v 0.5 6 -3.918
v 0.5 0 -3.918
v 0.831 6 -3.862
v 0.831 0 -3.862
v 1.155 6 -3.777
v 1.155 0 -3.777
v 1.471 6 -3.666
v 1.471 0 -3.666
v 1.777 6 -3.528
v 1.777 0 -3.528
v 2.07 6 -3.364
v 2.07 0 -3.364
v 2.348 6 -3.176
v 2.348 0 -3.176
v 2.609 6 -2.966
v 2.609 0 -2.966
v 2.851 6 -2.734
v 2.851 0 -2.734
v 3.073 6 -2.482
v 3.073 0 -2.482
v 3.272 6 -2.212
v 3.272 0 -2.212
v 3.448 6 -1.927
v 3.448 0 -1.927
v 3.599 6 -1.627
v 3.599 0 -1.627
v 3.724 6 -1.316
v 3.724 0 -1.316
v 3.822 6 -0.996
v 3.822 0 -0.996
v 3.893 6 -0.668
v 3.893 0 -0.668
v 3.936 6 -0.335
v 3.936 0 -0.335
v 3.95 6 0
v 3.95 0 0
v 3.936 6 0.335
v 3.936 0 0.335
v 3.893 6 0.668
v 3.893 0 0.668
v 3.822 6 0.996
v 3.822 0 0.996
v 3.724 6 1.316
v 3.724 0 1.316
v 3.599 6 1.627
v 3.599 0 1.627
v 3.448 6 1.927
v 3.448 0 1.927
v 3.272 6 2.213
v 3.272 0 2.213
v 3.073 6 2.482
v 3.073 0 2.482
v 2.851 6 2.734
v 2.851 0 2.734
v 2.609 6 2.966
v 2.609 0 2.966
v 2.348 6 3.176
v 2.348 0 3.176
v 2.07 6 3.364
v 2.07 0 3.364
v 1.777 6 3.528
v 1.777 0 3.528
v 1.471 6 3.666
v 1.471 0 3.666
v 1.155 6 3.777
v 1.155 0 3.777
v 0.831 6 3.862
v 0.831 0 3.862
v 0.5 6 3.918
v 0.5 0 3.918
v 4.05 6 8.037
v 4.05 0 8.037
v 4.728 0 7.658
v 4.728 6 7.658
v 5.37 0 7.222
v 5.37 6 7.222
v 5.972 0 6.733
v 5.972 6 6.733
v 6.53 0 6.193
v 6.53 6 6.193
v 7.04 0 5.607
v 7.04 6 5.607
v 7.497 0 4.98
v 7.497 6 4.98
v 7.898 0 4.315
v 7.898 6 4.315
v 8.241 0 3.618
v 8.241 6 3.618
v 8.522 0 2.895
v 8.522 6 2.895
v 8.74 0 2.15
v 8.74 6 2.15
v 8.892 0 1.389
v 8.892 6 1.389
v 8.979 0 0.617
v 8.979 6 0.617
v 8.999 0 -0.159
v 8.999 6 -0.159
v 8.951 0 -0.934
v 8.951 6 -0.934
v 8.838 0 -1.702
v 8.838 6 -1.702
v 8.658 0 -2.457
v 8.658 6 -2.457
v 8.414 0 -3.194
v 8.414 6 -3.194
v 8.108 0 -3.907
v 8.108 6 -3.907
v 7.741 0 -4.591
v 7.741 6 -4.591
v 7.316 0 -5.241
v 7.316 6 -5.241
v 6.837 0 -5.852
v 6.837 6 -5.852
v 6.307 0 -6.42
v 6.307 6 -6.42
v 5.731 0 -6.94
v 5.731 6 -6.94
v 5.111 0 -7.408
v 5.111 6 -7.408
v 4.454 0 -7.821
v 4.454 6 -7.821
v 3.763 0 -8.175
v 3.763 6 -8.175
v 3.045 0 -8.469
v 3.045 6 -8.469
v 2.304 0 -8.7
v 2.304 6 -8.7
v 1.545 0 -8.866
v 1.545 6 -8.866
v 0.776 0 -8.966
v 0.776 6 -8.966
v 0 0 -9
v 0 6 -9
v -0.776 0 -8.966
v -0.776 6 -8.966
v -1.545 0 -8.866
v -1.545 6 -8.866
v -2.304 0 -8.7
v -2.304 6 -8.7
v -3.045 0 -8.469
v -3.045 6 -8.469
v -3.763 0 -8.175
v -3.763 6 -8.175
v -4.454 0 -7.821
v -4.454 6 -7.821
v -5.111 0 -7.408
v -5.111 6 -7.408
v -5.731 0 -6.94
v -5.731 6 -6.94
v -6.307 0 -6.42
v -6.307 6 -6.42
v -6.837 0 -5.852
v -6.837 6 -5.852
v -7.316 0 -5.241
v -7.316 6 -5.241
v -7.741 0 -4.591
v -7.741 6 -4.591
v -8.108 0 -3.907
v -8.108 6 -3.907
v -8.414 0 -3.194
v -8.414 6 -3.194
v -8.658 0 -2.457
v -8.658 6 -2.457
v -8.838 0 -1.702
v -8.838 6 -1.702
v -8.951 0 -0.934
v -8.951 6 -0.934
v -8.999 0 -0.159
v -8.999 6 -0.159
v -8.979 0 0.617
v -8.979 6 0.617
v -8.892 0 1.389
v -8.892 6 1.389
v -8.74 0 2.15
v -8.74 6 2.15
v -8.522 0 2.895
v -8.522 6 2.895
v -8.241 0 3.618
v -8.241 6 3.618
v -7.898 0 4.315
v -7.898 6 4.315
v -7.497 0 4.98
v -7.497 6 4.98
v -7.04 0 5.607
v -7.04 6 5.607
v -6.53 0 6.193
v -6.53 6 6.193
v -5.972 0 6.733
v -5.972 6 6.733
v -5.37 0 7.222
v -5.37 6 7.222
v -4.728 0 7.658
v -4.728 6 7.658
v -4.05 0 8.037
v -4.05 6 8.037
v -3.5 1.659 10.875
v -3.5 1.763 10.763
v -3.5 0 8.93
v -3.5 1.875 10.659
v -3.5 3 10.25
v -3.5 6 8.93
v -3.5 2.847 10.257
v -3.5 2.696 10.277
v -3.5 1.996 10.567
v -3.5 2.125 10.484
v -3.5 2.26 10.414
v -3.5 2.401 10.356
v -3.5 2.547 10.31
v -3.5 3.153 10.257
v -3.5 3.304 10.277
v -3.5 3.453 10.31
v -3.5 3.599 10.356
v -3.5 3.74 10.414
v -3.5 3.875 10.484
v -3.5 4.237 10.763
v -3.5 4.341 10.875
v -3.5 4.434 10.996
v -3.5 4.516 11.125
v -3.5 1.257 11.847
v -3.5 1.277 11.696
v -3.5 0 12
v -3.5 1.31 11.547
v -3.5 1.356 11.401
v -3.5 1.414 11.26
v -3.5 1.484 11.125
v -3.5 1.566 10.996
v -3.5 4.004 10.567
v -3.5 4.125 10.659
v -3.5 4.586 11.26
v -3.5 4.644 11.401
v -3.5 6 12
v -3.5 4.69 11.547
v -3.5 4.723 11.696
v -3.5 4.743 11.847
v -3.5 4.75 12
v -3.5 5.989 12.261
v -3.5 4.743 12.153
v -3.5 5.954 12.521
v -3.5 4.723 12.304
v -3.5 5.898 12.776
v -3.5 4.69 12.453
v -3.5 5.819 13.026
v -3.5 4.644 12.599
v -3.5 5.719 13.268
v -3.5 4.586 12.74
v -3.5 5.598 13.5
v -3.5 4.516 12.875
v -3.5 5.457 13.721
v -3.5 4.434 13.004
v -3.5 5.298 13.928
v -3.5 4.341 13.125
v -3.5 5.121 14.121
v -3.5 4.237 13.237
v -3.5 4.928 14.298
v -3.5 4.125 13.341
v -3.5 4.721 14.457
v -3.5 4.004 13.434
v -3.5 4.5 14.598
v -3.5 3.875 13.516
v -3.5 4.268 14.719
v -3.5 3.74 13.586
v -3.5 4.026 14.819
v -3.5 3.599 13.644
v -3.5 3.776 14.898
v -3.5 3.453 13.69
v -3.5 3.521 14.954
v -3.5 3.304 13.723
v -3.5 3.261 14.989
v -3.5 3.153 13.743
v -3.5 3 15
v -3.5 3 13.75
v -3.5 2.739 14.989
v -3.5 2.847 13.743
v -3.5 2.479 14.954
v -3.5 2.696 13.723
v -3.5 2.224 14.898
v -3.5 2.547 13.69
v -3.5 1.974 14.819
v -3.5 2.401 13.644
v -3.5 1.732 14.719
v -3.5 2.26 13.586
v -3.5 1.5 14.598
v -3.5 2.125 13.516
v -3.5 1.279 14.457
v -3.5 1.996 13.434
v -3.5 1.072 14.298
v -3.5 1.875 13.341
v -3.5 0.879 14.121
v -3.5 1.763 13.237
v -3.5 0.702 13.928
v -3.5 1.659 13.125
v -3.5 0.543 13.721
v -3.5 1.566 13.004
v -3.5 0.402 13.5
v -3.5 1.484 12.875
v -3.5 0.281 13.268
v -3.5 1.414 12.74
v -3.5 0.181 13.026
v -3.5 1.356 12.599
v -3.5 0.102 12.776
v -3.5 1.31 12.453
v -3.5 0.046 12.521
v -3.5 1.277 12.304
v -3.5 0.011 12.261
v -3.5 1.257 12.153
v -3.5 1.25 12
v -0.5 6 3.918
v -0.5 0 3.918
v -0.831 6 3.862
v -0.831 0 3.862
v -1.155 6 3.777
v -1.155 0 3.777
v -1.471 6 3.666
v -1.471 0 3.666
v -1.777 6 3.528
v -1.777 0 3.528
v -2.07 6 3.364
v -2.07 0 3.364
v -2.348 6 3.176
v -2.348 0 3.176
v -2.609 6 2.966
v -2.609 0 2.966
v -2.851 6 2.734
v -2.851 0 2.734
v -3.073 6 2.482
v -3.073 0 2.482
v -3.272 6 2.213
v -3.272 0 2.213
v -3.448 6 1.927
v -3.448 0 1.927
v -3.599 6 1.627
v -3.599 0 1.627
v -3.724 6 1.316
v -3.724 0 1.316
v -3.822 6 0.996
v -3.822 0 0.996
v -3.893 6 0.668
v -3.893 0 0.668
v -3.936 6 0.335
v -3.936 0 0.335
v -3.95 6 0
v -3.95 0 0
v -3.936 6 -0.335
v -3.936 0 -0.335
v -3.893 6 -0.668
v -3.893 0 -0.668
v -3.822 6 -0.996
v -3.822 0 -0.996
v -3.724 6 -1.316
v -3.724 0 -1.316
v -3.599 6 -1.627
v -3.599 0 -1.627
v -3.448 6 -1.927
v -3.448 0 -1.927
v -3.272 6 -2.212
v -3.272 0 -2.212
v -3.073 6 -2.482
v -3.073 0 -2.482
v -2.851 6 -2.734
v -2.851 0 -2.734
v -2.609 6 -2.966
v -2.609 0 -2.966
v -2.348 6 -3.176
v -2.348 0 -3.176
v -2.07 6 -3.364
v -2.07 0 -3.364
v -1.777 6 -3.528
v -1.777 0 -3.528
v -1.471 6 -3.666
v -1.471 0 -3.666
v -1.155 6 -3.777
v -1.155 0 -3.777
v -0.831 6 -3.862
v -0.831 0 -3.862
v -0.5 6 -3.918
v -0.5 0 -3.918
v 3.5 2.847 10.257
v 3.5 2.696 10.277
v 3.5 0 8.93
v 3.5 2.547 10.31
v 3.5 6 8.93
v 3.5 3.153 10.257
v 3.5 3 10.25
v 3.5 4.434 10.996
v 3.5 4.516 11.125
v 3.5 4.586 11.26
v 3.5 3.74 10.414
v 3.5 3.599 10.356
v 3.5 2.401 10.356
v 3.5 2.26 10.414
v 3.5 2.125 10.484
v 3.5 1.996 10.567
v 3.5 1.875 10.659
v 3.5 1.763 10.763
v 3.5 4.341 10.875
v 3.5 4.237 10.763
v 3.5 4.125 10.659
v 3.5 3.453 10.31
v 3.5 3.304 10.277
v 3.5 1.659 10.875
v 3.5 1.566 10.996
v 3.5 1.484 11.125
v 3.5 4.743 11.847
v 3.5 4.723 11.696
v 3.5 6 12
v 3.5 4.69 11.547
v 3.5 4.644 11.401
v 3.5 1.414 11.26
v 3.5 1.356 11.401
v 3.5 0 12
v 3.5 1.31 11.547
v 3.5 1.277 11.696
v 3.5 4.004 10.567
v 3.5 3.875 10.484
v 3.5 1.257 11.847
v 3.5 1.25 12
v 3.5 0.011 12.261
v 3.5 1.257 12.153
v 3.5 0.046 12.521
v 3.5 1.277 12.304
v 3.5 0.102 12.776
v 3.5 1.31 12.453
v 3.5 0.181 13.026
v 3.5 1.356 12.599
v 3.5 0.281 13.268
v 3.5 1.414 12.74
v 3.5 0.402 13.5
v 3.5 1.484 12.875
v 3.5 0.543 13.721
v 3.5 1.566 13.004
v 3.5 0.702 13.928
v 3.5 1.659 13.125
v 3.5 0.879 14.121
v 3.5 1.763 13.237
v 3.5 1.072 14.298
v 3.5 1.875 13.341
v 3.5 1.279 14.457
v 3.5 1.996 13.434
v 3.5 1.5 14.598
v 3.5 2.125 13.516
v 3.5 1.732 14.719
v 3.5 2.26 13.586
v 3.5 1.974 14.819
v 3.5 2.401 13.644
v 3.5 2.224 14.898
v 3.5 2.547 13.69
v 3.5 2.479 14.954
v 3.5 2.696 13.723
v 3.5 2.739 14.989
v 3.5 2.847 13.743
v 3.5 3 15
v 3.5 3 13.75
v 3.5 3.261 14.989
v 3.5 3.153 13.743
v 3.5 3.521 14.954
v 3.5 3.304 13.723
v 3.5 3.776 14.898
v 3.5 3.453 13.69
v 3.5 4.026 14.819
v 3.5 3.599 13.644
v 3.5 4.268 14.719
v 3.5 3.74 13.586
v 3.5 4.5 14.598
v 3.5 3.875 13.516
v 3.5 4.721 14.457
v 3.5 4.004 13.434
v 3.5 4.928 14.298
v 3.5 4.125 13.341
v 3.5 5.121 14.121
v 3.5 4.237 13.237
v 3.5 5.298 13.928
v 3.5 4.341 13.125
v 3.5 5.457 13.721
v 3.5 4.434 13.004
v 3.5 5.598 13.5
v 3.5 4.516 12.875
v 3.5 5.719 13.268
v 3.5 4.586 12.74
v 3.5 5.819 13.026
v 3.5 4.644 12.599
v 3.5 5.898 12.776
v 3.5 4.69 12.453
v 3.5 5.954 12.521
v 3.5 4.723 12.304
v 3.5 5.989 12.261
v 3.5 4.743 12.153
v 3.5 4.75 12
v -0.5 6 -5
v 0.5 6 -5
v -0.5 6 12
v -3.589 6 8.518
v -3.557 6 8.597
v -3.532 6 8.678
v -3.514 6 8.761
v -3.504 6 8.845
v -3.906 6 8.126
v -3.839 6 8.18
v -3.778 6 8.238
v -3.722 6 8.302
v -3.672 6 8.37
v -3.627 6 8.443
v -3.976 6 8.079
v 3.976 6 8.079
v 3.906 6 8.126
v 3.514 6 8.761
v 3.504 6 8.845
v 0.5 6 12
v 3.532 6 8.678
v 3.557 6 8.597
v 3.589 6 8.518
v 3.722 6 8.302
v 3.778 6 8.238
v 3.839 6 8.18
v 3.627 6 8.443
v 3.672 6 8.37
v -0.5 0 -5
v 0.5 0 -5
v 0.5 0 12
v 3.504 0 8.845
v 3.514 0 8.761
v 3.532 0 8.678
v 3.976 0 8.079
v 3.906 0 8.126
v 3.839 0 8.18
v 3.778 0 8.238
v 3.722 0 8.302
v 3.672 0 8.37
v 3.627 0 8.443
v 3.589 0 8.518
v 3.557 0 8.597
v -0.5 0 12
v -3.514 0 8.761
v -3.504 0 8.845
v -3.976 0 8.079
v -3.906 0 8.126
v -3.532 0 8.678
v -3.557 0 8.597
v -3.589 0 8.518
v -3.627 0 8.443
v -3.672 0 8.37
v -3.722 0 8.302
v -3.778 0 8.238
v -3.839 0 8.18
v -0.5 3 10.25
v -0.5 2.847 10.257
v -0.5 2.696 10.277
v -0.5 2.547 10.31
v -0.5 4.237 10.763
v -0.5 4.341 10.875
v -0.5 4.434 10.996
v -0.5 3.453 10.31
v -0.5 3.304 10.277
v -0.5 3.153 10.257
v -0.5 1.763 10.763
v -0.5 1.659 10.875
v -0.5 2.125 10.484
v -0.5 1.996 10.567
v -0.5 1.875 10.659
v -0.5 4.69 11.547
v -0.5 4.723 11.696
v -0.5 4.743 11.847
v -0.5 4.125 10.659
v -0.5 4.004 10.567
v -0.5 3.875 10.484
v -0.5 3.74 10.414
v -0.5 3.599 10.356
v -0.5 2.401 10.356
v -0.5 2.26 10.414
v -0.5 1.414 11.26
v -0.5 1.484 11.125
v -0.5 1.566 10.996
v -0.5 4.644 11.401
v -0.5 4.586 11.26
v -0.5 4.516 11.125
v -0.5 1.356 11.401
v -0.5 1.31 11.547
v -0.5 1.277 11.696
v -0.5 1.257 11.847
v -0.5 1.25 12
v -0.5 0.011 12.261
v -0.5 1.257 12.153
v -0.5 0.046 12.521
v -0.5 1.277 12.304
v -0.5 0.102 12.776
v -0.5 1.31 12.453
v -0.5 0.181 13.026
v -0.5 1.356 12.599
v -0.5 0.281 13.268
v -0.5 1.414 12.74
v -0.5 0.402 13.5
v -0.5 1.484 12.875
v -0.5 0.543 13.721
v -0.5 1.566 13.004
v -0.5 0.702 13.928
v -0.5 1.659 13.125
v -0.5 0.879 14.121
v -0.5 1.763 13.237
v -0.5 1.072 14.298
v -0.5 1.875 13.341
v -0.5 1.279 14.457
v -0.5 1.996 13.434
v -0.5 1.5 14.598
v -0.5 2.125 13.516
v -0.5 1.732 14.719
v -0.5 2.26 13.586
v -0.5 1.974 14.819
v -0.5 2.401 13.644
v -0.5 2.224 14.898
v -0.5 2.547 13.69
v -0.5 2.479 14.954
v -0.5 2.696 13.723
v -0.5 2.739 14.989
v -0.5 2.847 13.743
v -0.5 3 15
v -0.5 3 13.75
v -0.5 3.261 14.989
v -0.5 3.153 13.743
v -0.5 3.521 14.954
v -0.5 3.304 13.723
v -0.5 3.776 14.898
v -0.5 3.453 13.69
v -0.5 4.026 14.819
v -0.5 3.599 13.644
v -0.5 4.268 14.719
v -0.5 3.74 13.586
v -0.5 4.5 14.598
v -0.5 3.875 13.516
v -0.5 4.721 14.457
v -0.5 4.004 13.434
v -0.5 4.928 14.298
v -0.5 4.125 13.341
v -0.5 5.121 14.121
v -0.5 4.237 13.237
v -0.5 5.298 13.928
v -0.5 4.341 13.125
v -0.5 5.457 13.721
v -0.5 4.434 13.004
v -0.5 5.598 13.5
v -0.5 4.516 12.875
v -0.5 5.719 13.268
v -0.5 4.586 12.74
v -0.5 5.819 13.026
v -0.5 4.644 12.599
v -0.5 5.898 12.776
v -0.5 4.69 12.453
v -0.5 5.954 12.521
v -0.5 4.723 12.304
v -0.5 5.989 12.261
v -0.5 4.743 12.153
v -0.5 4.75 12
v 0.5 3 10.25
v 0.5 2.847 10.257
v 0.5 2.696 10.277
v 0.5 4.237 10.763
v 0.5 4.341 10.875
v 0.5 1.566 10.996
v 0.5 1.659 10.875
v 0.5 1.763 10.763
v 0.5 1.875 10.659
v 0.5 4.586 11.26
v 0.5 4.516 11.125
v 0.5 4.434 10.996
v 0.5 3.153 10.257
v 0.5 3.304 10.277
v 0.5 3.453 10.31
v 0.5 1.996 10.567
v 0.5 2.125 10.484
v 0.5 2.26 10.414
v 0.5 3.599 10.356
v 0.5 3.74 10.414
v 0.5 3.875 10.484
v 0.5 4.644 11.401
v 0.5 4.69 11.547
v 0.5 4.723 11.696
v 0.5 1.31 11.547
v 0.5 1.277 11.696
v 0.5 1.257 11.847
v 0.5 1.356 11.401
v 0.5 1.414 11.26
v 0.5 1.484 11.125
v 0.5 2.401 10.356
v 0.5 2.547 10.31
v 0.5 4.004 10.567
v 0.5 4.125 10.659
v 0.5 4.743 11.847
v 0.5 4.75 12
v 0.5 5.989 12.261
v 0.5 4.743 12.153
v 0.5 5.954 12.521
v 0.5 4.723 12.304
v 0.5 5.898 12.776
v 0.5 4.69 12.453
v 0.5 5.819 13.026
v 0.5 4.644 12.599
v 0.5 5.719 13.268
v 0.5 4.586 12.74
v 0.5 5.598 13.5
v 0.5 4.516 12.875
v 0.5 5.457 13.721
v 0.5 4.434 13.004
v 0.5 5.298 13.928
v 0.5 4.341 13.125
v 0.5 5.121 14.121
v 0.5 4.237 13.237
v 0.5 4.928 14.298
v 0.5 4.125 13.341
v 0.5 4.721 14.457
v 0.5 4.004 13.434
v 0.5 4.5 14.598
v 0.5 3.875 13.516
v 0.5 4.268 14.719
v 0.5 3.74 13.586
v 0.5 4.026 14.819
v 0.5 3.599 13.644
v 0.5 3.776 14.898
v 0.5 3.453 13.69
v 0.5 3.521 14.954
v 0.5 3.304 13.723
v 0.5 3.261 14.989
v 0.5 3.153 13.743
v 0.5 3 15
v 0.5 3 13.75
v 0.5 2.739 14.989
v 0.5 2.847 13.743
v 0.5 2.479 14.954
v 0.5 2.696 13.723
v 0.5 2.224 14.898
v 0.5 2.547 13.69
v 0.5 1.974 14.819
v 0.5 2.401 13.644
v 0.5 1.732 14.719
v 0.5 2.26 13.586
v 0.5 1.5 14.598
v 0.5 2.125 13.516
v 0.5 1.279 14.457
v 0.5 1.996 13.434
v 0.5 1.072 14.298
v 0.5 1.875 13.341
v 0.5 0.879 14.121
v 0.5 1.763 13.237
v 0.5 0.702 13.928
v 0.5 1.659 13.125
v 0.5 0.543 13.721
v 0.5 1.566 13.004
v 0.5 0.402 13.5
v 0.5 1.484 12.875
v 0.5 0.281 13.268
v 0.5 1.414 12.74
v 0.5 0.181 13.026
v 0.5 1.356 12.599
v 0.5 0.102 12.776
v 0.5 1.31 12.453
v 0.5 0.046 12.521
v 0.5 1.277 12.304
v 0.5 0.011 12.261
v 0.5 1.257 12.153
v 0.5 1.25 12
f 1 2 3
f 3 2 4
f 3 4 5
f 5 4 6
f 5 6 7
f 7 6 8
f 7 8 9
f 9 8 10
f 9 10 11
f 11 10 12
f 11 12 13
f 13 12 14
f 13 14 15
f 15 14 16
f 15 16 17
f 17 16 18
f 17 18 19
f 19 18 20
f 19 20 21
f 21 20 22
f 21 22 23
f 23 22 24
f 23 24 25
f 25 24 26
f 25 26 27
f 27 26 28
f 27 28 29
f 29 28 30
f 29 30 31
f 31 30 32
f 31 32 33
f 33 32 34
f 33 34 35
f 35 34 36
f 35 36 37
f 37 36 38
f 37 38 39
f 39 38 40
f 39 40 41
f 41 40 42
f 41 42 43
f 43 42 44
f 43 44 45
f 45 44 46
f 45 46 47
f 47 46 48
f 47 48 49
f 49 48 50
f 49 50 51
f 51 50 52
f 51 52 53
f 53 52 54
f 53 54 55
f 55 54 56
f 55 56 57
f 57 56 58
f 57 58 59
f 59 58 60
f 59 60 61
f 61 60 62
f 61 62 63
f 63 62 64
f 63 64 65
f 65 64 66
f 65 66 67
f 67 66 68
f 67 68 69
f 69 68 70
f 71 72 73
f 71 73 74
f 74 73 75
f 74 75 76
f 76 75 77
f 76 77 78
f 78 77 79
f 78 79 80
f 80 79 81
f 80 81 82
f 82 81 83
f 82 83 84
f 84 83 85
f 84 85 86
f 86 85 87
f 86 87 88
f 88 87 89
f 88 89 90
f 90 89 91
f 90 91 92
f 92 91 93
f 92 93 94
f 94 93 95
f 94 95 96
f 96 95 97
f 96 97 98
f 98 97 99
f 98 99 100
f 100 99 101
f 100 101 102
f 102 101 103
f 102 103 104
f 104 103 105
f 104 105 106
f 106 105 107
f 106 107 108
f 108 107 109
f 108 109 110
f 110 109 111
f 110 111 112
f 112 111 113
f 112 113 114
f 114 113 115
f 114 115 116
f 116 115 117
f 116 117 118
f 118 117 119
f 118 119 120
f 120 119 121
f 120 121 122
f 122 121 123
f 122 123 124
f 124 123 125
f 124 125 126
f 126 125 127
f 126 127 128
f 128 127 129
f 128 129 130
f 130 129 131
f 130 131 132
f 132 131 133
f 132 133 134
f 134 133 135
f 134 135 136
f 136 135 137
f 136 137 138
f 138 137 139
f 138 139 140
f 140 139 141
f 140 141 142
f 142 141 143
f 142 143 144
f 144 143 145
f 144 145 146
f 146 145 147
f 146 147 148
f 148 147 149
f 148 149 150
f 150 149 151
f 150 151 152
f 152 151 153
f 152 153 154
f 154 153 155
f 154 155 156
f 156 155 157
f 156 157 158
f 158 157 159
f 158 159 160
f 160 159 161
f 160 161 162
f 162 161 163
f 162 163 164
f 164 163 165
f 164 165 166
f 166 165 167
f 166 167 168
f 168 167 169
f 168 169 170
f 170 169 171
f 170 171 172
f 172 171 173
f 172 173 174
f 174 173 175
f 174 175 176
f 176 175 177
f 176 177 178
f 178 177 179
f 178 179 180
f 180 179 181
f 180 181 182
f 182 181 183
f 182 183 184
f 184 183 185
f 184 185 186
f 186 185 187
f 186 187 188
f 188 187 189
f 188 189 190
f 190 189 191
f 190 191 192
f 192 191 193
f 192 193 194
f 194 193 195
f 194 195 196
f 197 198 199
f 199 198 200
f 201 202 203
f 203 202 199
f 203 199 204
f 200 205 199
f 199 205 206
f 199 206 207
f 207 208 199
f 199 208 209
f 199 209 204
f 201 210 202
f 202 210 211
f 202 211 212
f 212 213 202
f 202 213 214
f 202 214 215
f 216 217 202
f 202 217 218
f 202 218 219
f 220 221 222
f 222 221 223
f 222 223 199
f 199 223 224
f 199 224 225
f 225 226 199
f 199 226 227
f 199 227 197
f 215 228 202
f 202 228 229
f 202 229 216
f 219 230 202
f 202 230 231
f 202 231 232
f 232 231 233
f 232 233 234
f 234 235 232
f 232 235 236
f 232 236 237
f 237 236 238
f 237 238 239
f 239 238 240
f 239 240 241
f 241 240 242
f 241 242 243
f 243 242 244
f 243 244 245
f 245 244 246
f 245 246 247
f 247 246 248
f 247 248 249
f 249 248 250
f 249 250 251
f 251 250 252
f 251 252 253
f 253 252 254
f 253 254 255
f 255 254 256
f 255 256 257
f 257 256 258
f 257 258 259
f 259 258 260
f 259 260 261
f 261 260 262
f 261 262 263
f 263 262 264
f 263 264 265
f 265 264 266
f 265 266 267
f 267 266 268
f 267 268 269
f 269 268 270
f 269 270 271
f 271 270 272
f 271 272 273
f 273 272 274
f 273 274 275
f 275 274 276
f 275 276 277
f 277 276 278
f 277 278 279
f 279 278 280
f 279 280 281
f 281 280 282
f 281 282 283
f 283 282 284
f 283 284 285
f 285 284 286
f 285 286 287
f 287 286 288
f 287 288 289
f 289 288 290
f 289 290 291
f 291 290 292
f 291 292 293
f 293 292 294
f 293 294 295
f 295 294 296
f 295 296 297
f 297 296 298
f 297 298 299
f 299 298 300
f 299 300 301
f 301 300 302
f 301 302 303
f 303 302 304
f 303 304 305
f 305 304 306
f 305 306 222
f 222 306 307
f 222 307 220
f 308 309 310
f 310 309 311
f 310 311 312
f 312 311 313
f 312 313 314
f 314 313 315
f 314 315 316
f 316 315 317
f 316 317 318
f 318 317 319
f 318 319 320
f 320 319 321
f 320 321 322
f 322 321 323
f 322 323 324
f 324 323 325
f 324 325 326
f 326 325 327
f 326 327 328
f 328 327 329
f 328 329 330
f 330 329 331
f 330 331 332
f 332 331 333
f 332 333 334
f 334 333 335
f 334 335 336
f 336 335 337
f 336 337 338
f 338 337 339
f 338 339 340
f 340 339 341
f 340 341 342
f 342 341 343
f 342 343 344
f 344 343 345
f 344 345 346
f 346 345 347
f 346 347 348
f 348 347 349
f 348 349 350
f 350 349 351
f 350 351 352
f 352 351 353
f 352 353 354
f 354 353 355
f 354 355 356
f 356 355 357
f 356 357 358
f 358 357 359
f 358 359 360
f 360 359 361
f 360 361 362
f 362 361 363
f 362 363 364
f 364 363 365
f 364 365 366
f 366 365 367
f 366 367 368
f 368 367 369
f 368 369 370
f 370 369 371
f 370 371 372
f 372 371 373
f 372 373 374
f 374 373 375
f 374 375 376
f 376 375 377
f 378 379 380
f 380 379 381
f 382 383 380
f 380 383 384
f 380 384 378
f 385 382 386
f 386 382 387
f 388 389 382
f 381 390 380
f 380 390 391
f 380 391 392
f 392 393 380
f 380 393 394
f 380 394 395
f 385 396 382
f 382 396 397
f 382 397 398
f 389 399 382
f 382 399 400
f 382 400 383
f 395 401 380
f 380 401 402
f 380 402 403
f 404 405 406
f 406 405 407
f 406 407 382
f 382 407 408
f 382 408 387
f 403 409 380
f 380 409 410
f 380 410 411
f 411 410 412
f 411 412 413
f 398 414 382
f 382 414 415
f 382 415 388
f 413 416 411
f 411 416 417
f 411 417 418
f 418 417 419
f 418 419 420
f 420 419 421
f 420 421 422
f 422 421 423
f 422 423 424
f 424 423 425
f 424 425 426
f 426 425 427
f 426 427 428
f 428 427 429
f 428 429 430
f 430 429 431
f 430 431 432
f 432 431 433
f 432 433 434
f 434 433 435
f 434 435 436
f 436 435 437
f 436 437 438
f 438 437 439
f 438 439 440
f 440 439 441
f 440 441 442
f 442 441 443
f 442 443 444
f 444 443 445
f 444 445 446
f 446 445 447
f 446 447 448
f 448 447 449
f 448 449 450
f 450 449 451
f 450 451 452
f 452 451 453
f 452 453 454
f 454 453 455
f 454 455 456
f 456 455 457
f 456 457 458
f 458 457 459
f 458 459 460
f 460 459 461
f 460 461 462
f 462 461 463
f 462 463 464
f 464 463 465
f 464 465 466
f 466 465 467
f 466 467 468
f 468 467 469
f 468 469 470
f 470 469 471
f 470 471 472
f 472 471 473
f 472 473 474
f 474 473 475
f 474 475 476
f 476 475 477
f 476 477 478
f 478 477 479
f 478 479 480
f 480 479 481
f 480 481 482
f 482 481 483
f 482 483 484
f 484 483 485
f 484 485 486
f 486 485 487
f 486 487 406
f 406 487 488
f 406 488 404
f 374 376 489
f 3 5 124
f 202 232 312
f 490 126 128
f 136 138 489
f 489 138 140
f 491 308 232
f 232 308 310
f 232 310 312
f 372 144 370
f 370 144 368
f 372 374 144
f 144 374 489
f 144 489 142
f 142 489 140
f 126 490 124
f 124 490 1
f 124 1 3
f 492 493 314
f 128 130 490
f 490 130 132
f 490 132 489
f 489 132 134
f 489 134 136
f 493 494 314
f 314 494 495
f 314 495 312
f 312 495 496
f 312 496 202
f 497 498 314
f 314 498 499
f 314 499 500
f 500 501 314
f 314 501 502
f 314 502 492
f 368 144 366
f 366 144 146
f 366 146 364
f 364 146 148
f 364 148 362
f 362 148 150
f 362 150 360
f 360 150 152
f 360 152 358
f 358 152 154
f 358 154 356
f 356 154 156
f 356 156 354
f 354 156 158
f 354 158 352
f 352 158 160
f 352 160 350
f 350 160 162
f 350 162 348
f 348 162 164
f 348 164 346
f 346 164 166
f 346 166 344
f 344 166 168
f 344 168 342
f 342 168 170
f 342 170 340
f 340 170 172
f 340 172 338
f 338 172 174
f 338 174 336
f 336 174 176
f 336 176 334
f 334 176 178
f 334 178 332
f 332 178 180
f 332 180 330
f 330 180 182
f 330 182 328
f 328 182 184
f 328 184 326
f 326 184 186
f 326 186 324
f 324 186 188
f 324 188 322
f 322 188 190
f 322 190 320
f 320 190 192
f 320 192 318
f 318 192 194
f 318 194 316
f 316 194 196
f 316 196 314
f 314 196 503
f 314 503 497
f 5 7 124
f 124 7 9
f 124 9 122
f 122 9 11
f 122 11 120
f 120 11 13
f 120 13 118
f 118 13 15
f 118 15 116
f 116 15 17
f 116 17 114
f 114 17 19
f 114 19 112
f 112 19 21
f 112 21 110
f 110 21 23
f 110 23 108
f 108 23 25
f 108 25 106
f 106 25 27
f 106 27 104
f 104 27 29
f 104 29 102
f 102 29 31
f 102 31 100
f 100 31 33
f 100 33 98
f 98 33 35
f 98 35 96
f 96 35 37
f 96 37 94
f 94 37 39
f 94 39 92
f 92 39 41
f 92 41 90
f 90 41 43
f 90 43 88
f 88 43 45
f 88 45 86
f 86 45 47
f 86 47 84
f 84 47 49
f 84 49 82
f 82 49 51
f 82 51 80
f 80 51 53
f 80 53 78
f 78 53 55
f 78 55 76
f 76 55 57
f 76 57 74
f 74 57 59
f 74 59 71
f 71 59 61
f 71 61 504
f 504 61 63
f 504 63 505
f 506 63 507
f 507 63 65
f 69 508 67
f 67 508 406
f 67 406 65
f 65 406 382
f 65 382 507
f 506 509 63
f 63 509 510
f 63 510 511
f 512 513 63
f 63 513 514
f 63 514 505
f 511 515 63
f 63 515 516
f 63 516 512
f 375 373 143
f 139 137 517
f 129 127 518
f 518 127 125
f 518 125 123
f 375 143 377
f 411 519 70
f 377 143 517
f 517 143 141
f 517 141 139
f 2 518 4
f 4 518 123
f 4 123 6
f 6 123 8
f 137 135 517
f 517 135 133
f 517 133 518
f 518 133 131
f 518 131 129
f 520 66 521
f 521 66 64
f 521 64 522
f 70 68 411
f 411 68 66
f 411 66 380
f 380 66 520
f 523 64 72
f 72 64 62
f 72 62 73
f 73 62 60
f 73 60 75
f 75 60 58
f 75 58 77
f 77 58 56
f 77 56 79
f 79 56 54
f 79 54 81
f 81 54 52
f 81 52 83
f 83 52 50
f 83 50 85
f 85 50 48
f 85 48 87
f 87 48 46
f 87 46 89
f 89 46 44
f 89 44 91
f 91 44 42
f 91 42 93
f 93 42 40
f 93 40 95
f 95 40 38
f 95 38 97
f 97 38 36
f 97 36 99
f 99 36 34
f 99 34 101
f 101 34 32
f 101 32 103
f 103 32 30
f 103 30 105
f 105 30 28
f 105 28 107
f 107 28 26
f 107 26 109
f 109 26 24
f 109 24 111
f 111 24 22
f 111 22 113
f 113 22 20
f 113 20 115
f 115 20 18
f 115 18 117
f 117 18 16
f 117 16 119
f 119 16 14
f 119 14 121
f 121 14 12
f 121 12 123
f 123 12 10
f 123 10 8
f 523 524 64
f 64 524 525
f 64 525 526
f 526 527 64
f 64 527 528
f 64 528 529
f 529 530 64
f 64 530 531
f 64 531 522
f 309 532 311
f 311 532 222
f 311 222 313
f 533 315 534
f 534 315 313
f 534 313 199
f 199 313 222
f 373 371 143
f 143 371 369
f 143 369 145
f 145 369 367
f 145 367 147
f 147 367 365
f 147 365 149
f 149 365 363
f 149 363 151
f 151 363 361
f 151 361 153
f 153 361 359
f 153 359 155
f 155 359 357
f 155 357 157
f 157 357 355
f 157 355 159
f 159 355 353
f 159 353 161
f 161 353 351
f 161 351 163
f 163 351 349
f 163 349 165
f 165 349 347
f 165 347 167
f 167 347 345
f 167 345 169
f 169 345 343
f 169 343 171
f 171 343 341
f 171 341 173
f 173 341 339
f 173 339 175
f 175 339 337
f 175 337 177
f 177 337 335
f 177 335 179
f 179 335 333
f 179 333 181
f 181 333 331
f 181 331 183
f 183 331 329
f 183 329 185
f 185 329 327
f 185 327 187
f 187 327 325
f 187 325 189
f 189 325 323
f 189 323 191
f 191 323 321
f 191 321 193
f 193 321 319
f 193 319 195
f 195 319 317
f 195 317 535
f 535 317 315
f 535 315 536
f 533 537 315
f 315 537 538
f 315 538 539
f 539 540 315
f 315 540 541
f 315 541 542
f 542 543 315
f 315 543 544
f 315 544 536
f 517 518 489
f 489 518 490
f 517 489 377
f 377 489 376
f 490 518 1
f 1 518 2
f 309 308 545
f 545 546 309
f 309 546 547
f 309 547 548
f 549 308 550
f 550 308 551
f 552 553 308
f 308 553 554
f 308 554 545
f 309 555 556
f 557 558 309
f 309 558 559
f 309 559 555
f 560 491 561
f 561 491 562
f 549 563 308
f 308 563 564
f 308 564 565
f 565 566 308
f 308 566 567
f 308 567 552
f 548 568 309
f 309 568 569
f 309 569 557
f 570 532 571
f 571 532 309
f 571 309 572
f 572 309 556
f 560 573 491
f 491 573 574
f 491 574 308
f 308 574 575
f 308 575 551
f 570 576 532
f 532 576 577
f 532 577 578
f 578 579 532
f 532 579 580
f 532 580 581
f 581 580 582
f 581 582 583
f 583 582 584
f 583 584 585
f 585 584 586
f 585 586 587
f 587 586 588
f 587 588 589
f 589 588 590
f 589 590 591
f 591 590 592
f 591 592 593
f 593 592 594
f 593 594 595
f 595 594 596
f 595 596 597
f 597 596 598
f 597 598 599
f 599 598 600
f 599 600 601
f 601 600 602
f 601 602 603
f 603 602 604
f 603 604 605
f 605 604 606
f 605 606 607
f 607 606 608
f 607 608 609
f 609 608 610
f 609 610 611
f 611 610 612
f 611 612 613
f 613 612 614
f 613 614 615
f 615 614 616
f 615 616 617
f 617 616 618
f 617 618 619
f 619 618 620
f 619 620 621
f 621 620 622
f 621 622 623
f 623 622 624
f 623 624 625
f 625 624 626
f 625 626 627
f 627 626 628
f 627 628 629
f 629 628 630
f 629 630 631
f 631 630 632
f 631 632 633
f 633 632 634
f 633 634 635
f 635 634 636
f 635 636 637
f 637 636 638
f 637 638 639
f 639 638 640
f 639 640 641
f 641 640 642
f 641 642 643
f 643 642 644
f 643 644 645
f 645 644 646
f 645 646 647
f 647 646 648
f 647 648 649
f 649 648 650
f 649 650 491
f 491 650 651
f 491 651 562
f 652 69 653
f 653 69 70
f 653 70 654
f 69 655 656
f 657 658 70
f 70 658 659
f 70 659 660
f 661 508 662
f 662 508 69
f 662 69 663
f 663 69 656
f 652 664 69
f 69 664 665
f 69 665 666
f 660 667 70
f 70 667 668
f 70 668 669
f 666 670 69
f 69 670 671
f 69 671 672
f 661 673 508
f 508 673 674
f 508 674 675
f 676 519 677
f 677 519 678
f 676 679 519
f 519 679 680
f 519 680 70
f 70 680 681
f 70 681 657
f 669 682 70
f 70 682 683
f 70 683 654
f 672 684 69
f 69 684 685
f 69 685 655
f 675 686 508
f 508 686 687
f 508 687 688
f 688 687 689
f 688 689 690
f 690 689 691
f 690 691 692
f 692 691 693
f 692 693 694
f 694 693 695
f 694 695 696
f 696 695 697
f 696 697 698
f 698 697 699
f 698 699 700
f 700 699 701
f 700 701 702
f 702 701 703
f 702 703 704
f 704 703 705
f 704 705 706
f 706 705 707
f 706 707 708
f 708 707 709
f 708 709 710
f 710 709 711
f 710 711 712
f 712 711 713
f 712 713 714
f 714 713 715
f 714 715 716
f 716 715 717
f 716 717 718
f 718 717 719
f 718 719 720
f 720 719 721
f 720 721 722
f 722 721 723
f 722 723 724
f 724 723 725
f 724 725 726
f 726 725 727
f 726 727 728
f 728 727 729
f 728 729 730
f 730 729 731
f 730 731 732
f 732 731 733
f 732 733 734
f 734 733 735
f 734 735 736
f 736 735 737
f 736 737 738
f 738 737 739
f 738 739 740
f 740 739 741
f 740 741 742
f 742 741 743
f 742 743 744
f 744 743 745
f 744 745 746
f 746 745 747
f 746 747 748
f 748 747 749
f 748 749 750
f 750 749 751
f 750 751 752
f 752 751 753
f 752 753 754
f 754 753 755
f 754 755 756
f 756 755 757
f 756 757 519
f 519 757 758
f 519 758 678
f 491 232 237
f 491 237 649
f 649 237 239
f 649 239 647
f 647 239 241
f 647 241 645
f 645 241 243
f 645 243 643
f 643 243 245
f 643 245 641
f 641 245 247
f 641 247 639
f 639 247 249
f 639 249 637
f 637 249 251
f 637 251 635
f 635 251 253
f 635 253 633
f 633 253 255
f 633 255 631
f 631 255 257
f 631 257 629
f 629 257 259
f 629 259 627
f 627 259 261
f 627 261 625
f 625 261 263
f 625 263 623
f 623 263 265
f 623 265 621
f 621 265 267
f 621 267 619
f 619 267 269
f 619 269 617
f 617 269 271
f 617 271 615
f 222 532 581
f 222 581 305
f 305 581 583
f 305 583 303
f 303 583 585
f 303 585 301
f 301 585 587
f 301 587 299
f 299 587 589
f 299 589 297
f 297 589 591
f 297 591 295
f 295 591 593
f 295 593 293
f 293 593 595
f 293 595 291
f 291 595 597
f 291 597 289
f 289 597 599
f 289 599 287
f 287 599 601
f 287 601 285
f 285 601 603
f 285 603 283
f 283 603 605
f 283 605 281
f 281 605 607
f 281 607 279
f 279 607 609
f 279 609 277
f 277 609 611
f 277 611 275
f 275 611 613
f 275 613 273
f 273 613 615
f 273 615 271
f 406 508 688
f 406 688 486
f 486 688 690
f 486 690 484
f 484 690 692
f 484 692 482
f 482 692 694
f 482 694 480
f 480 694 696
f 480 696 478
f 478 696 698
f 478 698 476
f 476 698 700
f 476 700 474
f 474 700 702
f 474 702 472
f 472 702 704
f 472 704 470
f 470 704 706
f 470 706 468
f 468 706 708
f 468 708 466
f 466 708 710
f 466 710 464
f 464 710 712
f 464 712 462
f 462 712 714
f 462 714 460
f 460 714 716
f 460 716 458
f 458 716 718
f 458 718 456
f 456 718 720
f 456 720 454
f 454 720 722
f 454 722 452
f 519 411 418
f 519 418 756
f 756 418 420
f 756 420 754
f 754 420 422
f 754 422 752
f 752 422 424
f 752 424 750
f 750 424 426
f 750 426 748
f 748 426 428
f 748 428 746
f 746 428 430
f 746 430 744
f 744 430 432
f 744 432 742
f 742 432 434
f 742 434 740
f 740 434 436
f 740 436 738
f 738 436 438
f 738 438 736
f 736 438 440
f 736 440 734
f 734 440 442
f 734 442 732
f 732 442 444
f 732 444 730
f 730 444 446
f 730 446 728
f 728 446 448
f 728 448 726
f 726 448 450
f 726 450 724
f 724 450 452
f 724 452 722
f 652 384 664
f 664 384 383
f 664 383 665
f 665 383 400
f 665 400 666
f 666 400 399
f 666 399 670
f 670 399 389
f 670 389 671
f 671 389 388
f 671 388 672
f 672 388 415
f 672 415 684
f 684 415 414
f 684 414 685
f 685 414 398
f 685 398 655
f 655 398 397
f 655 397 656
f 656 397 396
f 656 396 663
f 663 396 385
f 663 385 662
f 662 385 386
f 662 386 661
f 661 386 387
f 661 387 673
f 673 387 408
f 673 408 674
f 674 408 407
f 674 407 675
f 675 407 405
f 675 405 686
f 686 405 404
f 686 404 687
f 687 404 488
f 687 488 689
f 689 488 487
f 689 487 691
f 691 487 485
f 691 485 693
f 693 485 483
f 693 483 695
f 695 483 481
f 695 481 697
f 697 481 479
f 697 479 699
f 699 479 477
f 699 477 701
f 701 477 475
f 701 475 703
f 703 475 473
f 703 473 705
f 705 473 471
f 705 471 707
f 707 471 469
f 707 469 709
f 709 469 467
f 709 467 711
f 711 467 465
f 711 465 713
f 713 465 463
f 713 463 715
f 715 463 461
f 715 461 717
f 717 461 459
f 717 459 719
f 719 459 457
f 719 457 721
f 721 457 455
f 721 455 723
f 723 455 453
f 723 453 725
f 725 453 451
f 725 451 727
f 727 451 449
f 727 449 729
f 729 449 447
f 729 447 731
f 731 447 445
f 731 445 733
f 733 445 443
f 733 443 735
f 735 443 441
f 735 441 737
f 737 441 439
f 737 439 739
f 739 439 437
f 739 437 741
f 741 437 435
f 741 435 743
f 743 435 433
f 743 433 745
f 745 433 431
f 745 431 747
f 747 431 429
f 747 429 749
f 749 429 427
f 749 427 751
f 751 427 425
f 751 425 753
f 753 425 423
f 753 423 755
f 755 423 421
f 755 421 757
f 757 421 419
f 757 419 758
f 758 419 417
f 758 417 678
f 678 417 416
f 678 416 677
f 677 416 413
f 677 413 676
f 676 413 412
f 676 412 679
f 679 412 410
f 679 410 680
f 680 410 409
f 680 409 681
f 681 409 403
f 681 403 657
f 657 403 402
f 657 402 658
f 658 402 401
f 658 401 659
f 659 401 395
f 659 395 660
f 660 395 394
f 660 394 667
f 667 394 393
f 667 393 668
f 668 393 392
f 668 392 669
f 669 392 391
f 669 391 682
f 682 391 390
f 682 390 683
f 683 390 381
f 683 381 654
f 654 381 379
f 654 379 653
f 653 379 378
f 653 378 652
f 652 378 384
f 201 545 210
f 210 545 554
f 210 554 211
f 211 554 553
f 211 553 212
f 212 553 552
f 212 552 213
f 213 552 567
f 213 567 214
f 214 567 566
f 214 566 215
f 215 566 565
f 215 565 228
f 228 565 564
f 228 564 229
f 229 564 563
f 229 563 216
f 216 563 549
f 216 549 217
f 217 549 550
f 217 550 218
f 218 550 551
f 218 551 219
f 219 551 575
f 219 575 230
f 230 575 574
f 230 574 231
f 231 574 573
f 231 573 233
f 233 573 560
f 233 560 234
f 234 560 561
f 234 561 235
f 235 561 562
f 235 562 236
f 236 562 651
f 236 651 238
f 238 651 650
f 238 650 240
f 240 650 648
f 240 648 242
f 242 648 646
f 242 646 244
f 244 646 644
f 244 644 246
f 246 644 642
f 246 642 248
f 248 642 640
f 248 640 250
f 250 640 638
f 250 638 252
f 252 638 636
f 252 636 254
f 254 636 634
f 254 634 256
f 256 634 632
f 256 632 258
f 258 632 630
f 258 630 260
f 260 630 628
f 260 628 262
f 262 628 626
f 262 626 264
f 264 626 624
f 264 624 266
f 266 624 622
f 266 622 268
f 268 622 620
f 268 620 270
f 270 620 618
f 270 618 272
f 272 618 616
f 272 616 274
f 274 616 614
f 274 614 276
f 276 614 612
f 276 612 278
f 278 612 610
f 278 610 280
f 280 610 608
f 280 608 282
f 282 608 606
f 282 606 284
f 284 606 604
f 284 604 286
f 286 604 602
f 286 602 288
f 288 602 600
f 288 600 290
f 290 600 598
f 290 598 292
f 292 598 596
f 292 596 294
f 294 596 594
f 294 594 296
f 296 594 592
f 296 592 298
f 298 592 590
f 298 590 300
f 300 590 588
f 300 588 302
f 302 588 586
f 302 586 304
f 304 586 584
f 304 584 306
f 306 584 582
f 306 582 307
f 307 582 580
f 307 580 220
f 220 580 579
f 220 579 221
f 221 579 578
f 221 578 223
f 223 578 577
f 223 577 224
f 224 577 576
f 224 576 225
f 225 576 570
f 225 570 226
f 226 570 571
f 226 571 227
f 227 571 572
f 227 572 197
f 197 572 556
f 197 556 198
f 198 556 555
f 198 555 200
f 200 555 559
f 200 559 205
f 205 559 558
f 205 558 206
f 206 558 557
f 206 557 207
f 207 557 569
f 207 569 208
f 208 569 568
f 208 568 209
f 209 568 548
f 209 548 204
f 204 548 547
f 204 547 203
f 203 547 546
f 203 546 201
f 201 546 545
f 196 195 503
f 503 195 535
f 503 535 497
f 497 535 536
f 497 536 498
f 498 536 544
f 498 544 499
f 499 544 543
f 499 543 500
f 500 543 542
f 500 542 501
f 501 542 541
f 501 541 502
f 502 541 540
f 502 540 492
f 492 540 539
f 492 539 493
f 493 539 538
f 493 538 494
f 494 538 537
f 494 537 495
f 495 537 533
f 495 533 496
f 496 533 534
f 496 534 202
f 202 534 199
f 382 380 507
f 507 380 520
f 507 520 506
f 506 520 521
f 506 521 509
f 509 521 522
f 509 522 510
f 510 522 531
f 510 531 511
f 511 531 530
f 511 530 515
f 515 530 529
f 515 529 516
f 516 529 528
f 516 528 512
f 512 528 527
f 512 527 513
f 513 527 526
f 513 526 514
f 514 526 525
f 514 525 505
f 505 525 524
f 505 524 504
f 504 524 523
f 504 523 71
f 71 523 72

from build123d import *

# Parameters (mm, degrees)
SKETCH1_R           = 3.95
BOSS_EXTRUDE1_DEPTH = 6
SKETCH2_W           = 1
SKETCH2_H           = 20
CUT_EXTRUDE1_DEPTH  = 19.493242009
FILLET1_R           = 3
SKETCH3_R           = 1.75
CUT_EXTRUDE2_DEPTH  = 21.426698216
FILLET2_R           = 1


with BuildPart() as part:
    # Sketch1 → Boss-Extrude1 (new body)
    # profile 1 of 3: a face of its own
    with BuildSketch(Plane(origin=(0, 0, 0), x_dir=(1, 0, 0), z_dir=(0, 1, 0))):
        with BuildLine():
            ThreePointArc((9, 0), (-4.974937186, 7.5), (-3.5, -8.291561976))
            Line((-3.5, -8.291561976), (-3.5, -4))
            Line((-3.5, -4), (3.5, -4))
            Line((3.5, -4), (3.5, -8.291561976))
            ThreePointArc((3.5, -8.291561976), (7.5, -4.974937186), (9, 0))
        make_face()
        with Locations(Location((0, 0, 0), (0, 0, 270))):
            Circle(SKETCH1_R, mode=Mode.SUBTRACT)
    # profile 2 of 3: a face of its own
    with BuildSketch(Plane(origin=(0, 0, 0), x_dir=(1, 0, 0), z_dir=(0, 1, 0))):
        with BuildLine():
            Line((-3.5, -4), (-3.5, -8.291561976))
            ThreePointArc((-3.5, -8.291561976), (0, -9), (3.5, -8.291561976))
            Line((3.5, -8.291561976), (3.5, -4))
            Line((3.5, -4), (-3.5, -4))
        make_face()
    # profile 3 of 3: a face of its own
    with BuildSketch(Plane(origin=(0, 0, 0), x_dir=(1, 0, 0), z_dir=(0, 1, 0))):
        with BuildLine():
            Line((-3.5, -8.291561976), (-3.5, -15))
            Line((-3.5, -15), (3.5, -15))
            Line((3.5, -15), (3.5, -8.291561976))
            ThreePointArc((3.5, -8.291561976), (0, -9), (-3.5, -8.291561976))
        make_face()
    extrude(amount=BOSS_EXTRUDE1_DEPTH)

    # Sketch2 → Cut-Extrude1 (cut, through all)
    with BuildSketch(Plane(origin=(0, 6, 0), x_dir=(1, 0, 0), z_dir=(0, 1, 0))):
        with Locations((0, -5)):
            Rectangle(SKETCH2_W, SKETCH2_H)
    extrude(amount=-CUT_EXTRUDE1_DEPTH, mode=Mode.SUBTRACT)

    # Fillet1
    fillet1_edges = [part.edges().sort_by_distance(p)[0] for p in [
        (-2, 0, 15),
        (-2, 6, 15),
        (2, 6, 15),
        (2, 0, 15),
    ]]
    fillet(fillet1_edges, radius=FILLET1_R - 0.0001)  # a hair under: the kernel refuses the full size

    # Sketch3 → Cut-Extrude2 (cut, through all)
    with BuildSketch(Plane(origin=(3.5, 0, 0), x_dir=(0, 0, -1), z_dir=(1, 0, 0))):
        with Locations((-12, 3)):
            Circle(SKETCH3_R)
    extrude(amount=-CUT_EXTRUDE2_DEPTH, mode=Mode.SUBTRACT)

    # Fillet2
    fillet2_edges = [part.edges().sort_by_distance(p)[0] for p in [
        (3.5, 3, 8.291561976),
        (-3.5, 3, 8.291561976),
    ]]
    fillet(fillet2_edges, radius=FILLET2_R)


solid = part.part
